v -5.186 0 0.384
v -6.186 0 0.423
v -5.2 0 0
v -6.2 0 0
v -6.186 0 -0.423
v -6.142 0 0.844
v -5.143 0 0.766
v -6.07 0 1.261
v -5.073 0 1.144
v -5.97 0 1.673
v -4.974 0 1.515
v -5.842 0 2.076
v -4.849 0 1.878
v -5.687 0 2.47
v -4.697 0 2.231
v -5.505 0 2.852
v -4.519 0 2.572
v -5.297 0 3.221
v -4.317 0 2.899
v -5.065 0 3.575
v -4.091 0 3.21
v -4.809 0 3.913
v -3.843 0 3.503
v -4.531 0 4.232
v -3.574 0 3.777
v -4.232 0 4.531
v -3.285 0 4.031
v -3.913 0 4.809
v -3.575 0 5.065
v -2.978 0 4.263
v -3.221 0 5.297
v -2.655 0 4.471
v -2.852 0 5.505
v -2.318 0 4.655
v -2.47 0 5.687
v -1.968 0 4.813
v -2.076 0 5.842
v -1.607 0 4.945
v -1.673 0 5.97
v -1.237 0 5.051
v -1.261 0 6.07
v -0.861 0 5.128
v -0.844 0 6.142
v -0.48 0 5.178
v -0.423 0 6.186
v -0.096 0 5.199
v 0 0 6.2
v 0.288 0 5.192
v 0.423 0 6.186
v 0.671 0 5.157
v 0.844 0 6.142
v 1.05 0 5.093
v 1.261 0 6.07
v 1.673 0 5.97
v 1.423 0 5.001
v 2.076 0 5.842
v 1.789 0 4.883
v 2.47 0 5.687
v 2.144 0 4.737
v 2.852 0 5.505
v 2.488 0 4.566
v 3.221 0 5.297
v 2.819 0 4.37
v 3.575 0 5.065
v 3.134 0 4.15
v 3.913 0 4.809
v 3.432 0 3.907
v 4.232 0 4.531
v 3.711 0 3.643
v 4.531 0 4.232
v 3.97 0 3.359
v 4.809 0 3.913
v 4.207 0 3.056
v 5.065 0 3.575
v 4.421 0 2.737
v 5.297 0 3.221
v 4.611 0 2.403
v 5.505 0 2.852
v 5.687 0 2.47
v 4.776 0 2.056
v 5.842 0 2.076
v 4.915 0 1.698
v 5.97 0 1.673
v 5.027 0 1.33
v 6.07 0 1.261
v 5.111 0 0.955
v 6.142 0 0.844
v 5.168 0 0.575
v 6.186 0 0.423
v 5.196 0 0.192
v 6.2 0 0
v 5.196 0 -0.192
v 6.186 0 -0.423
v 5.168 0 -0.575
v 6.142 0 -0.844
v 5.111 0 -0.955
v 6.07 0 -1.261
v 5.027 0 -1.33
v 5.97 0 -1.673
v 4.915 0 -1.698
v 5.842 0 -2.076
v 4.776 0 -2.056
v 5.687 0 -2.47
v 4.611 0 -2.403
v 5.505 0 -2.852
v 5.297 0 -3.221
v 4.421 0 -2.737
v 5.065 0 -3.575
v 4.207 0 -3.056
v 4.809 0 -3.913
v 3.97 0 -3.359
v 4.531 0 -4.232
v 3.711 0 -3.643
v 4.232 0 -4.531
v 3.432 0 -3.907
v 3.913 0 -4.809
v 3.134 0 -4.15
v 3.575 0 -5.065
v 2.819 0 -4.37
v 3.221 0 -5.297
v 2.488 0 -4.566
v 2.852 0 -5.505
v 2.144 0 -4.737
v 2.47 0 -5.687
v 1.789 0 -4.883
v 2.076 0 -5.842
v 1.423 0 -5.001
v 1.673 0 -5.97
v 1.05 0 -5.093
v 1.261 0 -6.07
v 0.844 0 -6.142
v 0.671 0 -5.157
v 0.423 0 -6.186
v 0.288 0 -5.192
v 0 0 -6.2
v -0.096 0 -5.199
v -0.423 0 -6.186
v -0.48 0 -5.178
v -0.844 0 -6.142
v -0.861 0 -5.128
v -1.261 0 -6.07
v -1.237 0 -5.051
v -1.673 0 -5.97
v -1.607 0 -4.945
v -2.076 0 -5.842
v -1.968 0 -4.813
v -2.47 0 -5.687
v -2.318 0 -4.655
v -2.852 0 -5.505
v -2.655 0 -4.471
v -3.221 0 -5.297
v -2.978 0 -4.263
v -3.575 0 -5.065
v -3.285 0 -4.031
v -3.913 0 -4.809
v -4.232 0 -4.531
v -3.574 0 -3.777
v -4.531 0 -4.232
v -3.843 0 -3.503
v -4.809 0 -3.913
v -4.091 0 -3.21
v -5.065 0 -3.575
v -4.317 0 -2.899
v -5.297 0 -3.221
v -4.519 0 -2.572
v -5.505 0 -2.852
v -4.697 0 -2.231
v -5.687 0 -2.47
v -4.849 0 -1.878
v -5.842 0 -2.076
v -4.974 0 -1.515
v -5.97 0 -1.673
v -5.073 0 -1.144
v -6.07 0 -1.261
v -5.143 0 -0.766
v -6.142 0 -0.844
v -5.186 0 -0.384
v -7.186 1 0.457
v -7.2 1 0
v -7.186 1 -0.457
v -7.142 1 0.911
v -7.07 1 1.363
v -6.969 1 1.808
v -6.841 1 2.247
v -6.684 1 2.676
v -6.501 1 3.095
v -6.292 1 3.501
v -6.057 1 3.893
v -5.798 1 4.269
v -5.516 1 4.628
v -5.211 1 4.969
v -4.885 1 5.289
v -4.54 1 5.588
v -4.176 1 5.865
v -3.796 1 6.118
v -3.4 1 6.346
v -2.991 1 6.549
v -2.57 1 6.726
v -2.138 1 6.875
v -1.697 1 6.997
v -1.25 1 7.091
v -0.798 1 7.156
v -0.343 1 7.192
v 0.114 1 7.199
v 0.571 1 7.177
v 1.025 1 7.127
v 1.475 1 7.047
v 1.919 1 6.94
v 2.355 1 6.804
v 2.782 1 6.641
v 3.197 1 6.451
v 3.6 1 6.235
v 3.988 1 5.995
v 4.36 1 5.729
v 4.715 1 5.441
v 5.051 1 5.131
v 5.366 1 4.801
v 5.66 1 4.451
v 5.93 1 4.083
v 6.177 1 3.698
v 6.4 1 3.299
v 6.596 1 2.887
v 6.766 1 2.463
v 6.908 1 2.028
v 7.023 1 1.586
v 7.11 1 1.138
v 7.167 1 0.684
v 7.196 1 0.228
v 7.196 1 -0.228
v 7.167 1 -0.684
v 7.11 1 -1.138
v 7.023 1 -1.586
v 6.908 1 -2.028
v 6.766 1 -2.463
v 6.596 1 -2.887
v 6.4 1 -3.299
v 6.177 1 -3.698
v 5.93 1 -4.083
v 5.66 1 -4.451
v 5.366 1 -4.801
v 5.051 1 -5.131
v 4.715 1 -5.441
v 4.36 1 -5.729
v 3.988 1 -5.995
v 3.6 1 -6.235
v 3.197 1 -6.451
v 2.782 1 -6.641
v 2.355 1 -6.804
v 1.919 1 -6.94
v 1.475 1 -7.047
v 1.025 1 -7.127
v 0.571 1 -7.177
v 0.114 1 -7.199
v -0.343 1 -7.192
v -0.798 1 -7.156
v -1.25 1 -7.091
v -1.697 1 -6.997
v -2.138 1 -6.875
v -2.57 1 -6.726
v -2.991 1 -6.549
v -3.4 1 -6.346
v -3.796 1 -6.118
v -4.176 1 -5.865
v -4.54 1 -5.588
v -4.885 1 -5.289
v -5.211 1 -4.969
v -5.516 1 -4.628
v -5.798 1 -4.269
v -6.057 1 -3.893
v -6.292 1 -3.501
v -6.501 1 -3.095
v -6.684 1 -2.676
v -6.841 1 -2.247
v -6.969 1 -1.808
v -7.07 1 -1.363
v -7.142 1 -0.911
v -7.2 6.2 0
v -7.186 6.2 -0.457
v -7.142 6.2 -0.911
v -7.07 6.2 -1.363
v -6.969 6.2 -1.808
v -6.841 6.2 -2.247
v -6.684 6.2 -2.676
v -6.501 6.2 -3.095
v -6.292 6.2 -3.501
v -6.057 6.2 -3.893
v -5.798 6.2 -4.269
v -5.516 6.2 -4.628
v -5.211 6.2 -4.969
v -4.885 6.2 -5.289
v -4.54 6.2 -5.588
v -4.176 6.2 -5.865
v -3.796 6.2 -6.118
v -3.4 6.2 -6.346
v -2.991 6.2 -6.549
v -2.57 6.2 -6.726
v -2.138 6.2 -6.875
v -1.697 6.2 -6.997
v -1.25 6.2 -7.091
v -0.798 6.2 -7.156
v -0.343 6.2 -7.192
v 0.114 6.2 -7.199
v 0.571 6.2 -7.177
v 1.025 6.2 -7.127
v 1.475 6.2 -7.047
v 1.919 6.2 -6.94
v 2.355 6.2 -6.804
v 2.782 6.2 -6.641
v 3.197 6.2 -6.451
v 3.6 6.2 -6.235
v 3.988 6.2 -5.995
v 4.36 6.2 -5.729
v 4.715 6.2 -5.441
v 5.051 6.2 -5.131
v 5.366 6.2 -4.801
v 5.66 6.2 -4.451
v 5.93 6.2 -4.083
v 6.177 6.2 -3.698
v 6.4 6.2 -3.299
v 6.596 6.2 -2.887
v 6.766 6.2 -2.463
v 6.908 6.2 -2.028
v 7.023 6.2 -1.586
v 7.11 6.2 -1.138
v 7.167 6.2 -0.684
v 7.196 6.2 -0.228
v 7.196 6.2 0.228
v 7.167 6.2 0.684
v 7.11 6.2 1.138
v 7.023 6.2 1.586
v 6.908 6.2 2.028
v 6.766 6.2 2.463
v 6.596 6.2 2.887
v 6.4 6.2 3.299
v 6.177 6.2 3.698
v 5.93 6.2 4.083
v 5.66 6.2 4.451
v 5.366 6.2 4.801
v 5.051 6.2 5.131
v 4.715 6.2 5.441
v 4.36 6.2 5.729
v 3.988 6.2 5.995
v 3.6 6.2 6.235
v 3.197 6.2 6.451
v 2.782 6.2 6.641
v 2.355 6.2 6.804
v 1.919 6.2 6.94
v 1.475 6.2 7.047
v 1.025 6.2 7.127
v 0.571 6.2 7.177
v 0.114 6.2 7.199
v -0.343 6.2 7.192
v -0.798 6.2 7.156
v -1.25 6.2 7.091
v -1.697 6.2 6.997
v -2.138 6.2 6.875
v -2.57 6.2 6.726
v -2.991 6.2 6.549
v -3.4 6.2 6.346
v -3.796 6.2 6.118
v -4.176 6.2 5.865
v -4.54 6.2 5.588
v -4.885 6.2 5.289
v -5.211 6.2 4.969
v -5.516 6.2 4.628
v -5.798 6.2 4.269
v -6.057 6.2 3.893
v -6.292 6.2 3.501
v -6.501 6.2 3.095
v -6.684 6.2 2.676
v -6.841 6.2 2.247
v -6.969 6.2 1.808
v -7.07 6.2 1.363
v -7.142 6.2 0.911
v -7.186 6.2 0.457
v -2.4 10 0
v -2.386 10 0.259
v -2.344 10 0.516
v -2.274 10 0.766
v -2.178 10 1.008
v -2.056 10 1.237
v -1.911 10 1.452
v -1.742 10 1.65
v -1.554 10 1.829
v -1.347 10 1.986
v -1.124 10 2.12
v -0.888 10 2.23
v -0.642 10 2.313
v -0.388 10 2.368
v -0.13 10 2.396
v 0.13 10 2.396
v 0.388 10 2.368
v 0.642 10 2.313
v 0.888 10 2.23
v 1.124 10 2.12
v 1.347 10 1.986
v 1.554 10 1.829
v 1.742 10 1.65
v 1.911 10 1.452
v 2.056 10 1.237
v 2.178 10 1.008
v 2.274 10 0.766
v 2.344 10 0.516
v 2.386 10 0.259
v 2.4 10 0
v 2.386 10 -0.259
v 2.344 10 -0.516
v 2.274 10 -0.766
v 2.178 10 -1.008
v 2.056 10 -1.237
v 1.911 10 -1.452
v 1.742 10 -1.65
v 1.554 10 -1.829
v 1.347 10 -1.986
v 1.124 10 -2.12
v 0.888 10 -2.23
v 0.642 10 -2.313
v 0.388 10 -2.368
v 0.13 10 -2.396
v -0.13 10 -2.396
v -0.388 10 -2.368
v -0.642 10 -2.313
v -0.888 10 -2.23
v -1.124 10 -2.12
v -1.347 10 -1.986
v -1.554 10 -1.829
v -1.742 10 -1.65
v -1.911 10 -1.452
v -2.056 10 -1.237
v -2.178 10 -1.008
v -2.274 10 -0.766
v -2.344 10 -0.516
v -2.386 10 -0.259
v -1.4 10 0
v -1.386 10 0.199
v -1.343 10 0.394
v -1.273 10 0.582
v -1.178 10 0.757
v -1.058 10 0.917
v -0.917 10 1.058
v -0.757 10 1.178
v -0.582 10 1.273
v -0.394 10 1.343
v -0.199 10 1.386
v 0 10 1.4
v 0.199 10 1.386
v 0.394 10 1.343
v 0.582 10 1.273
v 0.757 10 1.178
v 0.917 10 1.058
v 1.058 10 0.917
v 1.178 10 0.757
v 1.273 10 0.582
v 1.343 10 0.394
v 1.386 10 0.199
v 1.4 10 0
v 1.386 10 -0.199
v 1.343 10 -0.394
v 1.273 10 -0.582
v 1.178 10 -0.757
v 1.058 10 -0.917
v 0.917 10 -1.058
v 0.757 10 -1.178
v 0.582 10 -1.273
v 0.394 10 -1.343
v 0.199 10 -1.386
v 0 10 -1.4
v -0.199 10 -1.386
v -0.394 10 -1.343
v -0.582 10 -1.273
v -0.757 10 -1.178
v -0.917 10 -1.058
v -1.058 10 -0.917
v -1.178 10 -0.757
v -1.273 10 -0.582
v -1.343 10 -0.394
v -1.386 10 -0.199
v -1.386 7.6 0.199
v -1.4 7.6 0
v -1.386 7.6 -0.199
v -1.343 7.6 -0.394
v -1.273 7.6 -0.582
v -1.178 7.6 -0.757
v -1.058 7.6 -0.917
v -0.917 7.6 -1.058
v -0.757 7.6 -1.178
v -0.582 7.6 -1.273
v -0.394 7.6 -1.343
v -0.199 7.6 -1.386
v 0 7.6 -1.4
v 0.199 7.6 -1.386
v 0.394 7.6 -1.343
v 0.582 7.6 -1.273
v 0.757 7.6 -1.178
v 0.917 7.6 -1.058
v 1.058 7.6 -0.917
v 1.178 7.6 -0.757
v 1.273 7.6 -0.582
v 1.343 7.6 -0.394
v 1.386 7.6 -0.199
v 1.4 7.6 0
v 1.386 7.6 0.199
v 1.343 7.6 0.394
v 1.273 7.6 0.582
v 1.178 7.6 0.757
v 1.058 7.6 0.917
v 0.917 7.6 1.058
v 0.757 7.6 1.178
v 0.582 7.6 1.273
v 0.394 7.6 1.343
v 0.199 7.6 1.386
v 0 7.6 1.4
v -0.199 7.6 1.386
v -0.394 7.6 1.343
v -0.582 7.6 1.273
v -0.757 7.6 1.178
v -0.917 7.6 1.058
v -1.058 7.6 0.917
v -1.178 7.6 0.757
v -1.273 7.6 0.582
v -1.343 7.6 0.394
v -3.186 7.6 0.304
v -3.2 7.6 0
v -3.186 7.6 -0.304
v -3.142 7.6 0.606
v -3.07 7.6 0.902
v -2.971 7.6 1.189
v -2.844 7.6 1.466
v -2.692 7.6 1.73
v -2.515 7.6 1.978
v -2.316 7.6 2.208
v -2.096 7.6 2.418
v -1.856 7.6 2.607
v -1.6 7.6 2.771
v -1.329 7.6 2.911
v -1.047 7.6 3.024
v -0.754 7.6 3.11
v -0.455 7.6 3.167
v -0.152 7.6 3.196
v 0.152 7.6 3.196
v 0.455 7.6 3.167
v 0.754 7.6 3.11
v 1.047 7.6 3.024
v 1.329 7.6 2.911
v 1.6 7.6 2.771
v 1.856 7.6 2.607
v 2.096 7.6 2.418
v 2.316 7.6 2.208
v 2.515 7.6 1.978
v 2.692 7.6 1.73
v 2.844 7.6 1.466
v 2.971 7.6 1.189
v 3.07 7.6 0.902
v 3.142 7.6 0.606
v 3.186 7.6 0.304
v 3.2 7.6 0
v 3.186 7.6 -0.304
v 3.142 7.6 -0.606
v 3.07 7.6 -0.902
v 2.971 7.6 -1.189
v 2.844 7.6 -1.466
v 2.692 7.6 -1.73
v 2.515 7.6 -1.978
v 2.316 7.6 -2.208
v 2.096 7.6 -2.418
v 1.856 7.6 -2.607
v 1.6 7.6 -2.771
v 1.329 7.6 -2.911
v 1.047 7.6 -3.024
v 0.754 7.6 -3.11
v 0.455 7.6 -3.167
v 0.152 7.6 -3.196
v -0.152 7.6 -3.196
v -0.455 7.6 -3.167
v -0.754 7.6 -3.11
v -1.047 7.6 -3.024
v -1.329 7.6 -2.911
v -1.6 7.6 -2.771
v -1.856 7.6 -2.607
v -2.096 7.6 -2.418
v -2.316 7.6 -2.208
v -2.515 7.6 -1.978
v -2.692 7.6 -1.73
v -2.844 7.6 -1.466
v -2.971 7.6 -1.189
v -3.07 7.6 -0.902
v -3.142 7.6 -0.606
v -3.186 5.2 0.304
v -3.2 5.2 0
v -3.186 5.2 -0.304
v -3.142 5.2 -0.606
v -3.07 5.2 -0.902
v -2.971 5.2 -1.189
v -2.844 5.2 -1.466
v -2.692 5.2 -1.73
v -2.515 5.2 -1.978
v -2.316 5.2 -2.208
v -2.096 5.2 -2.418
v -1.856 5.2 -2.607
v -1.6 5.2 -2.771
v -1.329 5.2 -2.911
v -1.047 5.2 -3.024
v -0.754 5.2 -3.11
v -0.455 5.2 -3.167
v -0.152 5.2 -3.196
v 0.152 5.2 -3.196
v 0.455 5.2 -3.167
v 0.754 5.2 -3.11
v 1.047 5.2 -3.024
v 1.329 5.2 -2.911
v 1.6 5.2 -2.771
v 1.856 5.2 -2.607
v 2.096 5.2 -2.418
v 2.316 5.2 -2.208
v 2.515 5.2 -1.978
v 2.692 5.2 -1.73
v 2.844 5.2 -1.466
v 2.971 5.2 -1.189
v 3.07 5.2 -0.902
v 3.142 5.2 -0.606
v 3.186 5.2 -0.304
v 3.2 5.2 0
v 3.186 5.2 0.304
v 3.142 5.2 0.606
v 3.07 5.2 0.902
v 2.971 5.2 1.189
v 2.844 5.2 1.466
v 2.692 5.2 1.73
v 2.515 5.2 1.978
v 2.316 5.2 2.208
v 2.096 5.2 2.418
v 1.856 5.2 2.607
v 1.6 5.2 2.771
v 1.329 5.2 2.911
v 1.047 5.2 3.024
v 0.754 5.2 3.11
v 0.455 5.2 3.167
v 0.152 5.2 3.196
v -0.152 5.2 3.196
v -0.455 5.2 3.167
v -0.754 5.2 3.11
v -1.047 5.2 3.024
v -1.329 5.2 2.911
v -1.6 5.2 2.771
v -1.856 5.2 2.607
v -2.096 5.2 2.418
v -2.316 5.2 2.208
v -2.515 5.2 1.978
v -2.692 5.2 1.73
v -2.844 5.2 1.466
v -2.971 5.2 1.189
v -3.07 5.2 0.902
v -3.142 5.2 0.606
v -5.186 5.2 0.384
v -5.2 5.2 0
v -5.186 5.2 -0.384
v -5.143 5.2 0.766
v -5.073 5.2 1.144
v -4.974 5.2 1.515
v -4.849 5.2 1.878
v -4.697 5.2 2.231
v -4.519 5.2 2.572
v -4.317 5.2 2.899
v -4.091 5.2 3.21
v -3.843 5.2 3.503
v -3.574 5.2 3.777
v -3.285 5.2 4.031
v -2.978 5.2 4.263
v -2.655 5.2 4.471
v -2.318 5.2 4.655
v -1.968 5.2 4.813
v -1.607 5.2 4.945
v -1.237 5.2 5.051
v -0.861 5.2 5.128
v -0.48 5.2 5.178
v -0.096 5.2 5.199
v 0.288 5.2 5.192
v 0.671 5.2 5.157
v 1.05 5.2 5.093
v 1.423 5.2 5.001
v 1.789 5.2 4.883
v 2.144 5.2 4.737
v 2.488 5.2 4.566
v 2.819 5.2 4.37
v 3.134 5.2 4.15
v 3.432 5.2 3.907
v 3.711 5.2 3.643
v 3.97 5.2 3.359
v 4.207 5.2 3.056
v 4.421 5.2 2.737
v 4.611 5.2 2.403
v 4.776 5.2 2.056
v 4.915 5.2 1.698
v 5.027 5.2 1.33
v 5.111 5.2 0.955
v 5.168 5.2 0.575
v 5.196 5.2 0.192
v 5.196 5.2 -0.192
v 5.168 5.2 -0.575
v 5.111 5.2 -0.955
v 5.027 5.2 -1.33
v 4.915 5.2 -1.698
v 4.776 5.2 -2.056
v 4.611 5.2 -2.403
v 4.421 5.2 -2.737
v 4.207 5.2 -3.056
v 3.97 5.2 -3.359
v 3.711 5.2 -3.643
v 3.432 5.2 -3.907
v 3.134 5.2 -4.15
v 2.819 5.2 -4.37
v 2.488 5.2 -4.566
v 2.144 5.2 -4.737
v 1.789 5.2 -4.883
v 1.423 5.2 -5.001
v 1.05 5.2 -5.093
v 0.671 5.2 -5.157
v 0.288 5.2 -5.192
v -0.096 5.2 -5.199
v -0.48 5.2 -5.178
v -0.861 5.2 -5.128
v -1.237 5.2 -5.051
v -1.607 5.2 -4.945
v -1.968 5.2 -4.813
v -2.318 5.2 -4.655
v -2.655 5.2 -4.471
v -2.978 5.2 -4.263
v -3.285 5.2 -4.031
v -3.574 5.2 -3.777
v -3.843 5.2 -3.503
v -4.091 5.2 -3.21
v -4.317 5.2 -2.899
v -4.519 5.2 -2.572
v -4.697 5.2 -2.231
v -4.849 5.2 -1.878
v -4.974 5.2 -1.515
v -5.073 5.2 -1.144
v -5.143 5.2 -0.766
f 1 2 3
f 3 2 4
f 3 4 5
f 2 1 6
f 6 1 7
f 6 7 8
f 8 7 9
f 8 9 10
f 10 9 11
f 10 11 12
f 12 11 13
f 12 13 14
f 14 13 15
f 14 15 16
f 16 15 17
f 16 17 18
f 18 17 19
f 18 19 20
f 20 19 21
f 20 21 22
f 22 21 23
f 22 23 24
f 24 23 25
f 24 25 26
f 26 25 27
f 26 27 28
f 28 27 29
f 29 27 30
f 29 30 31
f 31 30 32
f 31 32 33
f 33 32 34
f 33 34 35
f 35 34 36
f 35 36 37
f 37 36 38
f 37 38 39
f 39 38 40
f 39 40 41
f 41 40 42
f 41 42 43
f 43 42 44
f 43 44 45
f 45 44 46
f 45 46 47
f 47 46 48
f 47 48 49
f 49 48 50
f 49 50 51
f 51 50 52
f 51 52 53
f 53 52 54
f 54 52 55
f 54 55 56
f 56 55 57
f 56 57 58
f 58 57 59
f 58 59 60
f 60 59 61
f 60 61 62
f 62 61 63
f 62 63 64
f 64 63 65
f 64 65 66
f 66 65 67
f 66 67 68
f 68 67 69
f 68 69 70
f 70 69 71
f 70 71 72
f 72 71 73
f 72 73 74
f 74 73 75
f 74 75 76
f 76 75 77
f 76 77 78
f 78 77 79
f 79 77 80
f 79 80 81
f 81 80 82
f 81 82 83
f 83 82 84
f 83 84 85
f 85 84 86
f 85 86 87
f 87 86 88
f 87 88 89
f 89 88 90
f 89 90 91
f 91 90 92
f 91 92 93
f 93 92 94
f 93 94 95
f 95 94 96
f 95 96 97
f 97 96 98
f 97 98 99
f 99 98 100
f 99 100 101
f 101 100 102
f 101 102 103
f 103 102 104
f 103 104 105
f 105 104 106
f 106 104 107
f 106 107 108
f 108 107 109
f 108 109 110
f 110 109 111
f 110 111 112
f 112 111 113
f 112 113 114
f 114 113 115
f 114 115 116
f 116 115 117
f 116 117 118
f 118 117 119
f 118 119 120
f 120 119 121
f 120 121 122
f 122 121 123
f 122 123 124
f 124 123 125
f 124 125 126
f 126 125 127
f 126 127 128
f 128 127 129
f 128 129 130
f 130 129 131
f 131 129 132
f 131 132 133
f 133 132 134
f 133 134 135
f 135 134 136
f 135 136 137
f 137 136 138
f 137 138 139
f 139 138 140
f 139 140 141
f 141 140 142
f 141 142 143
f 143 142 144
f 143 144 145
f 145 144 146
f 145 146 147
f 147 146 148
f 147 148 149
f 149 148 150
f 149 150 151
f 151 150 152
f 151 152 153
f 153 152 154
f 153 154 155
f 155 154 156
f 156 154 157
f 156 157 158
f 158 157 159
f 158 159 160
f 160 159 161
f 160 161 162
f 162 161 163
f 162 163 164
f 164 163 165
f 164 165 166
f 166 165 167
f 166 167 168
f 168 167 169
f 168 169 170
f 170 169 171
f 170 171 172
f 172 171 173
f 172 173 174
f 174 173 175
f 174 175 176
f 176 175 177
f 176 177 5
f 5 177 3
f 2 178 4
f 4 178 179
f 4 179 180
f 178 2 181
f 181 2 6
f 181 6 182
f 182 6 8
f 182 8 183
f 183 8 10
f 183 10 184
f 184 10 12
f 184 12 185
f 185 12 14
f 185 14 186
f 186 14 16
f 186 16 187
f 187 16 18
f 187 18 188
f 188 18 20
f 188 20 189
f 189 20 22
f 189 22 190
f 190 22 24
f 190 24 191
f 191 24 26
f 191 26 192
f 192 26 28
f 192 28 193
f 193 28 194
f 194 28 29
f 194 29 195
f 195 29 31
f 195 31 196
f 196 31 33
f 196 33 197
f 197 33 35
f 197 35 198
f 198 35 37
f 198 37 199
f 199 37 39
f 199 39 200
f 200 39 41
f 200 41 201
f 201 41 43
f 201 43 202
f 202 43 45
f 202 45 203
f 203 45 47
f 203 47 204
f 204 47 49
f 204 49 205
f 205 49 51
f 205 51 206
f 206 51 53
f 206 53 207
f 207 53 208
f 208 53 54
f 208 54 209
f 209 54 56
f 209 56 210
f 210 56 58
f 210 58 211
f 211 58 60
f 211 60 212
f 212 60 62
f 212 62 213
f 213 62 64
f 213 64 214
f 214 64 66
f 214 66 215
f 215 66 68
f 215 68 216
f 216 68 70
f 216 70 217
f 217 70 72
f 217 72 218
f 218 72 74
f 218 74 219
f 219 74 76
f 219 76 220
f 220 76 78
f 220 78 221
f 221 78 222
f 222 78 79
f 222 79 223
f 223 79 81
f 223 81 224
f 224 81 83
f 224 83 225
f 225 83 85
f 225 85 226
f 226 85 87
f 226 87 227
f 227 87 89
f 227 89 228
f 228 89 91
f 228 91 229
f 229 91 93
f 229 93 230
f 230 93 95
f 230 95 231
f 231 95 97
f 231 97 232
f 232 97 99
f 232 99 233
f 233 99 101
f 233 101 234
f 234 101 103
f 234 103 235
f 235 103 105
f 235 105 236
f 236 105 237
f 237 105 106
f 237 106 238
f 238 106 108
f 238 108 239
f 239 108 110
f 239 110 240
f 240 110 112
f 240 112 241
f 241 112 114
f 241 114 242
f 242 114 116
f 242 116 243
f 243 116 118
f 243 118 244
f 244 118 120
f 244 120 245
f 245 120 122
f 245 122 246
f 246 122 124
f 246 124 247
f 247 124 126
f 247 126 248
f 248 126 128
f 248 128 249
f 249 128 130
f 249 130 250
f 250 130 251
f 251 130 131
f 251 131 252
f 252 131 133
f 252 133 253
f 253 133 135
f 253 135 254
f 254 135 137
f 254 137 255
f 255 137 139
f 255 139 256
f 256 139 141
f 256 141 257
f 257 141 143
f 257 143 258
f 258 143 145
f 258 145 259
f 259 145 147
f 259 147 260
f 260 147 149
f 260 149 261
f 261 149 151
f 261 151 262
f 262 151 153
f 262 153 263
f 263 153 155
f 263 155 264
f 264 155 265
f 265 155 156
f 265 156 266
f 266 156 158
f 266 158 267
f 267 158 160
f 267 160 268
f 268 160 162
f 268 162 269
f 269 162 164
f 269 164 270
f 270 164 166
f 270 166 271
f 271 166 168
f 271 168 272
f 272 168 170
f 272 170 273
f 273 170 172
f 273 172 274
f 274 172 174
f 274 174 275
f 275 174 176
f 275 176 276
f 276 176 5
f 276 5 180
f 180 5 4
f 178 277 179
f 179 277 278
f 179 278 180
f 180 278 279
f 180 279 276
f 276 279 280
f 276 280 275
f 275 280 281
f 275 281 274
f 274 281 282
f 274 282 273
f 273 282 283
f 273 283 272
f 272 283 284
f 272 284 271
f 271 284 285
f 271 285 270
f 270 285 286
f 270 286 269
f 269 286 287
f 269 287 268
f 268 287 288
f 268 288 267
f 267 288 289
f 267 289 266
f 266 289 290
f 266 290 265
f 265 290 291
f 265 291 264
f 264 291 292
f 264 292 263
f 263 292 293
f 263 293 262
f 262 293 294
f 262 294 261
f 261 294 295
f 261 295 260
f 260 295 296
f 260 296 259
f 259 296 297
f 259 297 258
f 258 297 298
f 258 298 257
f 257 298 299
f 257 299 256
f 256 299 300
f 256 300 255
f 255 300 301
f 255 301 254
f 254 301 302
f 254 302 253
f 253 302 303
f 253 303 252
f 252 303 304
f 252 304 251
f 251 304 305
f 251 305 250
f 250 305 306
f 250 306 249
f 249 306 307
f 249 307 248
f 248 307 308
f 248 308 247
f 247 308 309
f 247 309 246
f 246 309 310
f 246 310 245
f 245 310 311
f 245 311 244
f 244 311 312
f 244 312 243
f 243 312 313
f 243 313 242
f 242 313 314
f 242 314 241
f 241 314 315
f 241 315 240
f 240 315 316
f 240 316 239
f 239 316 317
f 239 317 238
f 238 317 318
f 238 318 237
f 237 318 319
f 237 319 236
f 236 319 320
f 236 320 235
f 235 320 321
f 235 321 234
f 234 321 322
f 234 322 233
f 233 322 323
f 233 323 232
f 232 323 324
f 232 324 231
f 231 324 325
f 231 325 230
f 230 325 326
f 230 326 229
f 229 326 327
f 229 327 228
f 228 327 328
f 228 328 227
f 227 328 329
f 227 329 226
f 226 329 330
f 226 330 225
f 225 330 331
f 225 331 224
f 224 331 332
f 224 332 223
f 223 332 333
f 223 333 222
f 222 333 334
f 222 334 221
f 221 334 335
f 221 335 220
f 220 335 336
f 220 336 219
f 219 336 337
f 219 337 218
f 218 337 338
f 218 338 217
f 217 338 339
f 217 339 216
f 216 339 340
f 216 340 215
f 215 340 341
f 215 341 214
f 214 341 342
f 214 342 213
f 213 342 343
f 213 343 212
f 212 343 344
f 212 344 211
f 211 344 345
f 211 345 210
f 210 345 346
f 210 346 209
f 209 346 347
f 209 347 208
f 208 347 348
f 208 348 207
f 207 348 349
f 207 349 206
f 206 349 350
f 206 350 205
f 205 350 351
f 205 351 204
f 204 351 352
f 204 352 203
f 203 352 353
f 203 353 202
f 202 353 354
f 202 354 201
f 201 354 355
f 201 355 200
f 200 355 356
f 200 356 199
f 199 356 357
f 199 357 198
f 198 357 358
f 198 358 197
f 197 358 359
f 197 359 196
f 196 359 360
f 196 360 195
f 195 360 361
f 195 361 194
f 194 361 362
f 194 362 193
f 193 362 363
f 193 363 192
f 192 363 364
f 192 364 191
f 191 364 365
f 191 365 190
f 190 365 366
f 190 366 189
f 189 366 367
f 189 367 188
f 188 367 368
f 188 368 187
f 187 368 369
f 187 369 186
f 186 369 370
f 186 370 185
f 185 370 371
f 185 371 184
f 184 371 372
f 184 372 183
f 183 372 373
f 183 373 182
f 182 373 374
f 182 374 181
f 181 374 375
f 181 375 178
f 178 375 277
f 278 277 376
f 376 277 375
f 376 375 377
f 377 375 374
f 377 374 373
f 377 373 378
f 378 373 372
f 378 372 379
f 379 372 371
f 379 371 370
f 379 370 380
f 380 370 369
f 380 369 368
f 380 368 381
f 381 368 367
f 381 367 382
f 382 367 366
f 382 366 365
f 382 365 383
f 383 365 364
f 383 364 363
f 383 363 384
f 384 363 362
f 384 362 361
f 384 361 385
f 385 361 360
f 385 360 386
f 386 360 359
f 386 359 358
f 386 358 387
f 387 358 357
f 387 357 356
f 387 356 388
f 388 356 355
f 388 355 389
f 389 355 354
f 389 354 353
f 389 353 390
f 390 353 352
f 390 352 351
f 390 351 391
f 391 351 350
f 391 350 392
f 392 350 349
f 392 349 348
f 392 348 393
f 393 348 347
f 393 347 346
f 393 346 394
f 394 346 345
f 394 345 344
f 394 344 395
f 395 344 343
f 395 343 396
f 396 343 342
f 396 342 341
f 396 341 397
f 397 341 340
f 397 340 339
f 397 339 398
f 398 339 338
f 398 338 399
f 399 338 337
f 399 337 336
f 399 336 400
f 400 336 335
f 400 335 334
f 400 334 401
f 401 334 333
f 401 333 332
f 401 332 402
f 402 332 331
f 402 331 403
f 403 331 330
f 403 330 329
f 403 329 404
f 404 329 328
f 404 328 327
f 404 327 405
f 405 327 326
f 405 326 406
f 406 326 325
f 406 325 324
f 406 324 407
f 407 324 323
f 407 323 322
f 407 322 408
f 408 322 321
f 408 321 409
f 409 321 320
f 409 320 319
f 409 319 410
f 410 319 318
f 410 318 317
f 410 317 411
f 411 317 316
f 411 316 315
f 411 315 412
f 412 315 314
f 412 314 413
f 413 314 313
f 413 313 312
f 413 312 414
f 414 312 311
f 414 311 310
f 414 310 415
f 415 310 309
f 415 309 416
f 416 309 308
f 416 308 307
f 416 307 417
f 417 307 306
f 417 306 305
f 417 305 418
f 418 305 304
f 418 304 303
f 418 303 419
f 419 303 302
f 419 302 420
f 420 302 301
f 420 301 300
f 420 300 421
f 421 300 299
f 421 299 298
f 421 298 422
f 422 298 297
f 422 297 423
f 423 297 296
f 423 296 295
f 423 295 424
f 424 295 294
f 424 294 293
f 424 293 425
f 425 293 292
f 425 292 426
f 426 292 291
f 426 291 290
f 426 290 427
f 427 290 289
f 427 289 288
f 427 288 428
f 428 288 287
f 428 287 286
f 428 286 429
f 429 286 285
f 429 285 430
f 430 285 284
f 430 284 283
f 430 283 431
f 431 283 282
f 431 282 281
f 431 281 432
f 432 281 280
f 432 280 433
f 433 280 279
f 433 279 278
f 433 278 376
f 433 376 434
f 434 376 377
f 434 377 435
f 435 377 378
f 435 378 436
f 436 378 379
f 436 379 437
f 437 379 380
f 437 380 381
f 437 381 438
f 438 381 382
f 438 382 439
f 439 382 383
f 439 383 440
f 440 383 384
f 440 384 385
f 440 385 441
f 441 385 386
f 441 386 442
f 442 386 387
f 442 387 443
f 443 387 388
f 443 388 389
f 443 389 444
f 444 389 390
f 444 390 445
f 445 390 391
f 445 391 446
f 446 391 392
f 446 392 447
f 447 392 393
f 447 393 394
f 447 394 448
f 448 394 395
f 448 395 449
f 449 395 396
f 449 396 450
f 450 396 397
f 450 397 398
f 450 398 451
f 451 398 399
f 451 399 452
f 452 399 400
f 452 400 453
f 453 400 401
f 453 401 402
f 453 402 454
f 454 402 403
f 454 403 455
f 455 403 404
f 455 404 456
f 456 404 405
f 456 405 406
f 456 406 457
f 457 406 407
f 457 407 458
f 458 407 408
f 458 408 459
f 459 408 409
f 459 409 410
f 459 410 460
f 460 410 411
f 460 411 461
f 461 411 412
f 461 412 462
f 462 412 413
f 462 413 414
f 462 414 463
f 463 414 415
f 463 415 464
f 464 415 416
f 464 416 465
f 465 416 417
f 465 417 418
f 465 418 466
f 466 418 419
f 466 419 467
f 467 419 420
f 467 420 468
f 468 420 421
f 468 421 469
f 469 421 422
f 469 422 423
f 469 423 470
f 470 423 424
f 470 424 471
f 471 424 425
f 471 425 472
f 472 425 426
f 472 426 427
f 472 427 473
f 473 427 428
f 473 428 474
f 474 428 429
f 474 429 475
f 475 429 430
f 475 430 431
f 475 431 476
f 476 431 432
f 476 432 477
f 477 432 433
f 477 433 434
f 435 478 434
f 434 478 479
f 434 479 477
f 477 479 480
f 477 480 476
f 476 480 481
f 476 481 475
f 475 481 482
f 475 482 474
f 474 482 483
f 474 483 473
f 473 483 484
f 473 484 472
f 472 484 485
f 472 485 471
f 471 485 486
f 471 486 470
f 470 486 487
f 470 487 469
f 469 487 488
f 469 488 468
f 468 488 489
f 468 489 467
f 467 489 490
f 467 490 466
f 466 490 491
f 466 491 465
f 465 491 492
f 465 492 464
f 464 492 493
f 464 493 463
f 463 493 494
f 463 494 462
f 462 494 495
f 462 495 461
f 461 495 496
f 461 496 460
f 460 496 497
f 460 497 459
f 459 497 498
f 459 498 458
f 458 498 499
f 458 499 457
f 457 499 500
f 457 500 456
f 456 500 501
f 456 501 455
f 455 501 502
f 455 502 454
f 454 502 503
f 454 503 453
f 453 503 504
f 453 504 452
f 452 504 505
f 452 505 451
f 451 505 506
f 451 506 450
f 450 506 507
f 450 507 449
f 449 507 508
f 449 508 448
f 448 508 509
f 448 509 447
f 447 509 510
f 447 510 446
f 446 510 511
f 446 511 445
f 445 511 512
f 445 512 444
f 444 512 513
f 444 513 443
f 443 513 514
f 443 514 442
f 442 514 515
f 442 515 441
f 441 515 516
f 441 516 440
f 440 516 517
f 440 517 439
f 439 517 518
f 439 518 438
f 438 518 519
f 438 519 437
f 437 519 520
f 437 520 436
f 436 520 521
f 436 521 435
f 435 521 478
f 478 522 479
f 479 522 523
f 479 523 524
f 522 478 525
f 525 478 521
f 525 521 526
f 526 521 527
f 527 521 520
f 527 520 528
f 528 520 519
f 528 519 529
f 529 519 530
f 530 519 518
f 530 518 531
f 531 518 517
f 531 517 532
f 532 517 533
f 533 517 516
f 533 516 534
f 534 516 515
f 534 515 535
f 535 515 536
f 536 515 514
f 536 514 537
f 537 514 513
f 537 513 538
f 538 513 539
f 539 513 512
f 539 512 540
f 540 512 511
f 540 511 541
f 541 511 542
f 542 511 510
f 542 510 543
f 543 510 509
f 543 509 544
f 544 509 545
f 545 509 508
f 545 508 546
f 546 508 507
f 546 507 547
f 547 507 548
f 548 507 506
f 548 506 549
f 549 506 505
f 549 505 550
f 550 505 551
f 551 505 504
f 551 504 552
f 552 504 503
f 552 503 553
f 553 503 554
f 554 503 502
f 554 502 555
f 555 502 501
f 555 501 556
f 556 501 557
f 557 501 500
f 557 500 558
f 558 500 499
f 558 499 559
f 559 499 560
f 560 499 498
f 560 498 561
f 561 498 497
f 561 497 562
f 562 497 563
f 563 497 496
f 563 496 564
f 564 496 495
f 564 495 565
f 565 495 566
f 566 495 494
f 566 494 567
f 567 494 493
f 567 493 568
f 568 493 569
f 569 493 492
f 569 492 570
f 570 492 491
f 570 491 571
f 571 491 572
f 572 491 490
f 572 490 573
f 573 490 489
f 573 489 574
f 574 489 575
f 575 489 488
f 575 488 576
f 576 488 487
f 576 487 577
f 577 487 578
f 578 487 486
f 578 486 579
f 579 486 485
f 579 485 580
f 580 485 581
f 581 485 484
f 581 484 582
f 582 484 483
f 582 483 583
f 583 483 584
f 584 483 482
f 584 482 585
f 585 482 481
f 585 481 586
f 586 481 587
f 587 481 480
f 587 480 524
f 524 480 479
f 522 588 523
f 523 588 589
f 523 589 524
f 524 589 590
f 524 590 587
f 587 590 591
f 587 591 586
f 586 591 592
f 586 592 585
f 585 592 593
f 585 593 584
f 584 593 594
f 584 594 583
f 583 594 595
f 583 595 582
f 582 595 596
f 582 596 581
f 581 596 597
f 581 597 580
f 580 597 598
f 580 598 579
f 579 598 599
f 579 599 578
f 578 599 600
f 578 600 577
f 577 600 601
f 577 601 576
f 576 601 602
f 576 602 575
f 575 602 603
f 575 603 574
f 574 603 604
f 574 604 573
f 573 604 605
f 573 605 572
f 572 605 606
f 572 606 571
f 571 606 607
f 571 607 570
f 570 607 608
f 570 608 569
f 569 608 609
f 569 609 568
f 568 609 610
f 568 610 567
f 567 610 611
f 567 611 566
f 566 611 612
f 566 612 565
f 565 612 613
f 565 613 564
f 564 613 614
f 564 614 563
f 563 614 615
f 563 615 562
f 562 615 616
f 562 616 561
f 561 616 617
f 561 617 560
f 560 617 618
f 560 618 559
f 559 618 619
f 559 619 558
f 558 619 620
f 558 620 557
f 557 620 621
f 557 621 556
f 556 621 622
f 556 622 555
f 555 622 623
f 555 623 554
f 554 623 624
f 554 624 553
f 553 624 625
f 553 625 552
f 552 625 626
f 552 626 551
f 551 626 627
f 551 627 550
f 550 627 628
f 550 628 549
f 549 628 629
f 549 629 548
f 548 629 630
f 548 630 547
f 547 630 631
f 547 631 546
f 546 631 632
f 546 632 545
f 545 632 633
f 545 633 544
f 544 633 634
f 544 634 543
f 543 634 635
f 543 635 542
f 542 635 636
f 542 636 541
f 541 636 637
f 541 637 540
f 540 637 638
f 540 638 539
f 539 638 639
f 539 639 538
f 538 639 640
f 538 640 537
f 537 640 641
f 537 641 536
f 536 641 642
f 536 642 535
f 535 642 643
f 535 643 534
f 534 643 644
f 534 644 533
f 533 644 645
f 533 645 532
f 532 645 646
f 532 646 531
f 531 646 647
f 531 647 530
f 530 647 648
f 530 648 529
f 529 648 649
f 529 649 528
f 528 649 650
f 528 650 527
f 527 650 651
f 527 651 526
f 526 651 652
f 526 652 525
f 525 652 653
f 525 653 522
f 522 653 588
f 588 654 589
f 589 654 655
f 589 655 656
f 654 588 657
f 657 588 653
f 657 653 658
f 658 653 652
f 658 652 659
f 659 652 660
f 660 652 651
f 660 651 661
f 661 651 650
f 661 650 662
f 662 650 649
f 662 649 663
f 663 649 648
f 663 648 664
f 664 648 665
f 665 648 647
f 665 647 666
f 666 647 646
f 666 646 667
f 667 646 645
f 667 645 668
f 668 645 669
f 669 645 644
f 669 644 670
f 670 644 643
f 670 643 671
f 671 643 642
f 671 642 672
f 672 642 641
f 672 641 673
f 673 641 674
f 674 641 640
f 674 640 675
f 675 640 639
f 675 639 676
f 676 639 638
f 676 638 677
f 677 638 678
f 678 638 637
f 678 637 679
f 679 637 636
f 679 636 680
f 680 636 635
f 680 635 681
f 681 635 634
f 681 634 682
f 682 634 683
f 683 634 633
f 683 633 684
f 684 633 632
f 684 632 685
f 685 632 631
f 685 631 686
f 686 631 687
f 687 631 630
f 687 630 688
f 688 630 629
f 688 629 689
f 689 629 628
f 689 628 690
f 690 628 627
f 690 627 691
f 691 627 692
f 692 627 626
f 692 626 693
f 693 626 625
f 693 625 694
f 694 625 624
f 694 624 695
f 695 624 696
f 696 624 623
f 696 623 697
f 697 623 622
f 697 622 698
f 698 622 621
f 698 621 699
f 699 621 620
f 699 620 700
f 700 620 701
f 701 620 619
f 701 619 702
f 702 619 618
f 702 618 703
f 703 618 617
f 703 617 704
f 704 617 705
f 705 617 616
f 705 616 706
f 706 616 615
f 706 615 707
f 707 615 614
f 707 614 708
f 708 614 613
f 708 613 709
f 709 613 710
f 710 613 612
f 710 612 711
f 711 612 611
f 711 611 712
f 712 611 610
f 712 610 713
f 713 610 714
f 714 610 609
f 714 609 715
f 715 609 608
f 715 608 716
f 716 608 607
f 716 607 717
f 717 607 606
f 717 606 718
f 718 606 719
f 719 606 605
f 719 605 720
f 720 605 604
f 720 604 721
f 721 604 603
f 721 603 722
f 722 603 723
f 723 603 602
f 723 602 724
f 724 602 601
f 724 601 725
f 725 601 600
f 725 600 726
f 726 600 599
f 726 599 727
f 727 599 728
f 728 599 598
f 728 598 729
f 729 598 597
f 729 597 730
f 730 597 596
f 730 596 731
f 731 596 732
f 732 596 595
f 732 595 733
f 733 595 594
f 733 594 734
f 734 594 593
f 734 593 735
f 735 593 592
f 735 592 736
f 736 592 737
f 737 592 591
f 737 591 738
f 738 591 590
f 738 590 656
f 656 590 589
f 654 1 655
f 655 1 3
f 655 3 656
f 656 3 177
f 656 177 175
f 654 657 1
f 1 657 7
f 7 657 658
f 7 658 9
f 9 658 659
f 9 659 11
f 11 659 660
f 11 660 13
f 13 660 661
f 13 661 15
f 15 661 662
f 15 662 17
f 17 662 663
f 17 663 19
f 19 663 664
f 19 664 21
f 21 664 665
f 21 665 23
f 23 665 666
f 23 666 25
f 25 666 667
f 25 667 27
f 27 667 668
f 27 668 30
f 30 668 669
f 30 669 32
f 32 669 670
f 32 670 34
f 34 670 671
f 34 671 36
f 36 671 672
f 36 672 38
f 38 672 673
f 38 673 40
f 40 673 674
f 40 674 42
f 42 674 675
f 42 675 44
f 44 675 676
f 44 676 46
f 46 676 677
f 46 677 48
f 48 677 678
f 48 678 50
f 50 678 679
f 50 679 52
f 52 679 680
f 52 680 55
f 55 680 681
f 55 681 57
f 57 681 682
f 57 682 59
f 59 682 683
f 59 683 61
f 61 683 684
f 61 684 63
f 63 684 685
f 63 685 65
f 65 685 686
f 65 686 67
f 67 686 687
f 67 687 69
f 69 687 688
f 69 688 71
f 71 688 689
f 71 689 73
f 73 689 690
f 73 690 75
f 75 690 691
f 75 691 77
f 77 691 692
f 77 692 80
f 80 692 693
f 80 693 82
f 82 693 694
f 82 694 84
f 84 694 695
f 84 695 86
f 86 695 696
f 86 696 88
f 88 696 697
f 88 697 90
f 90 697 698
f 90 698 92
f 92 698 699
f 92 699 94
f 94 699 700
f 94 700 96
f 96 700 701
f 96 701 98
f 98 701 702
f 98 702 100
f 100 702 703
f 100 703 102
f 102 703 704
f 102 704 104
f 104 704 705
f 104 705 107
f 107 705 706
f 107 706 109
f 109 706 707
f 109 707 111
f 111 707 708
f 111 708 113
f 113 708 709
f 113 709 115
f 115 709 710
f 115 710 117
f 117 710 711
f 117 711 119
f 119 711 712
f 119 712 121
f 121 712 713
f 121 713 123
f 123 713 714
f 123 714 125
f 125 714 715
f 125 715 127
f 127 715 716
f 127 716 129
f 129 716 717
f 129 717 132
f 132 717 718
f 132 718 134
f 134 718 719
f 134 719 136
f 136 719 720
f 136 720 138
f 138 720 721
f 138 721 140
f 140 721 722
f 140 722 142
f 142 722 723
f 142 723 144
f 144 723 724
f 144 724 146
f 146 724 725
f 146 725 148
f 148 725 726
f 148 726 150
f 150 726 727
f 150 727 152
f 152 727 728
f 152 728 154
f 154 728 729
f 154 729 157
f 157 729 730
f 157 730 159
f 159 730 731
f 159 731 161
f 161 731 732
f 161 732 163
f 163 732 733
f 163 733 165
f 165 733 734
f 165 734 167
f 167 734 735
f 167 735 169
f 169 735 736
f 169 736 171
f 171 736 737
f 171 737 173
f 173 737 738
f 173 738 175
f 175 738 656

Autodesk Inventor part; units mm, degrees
sketch "Sketch1" plane through (0, 0, 0) normal (0, 0, 1) x (1, 0, 0)
  line L0 (-5.2, 0) -> (-5.2, 5.2)
  line L1 (0, 14.64) -> (0, -2.44) projected
  line L2 (-5.2, 0) -> (-6.2, 0)
  line L3 (-6.2, 0) -> (-7.2, 1)
  line L4 (-8.64, 0) -> (1.44, 0) projected
  line L5 (-7.2, 1) -> (-7.2, 6.2)
  line L6 (-5.2, 5.2) -> (-3.2, 5.2)
  line L7 (-3.2, 5.2) -> (-3.2, 7.6)
  line L8 (-3.2, 7.6) -> (-1.4, 7.6)
  line L9 (0, 7.2) -> (0, 12.2)
  line L10 (-1.4, 10) -> (-2.4, 10)
  line L11 (-2.4, 10) -> (-7.2, 6.2)
  line L12 (0, -2.44) -> (0, 14.64) projected
  line L13 (-1.4, 7.6) -> (-1.4, 10)
  point P0 (0, 0)
  dimension "d0" = 5.2
  dimension "d1" = 5.2
  dimension "d2" = 1
  dimension "d3" = 1
  dimension "d5" = 5.2
  dimension "d6" = 3.2
  dimension "d7" = 2.4
  dimension "d8" = 0
  dimension "d11" = 2.4
  dimension "d21" = 1.4
  dimension "d22" = 2
  dimension "d23" = 2.4
revolve "Revolution1" add sketch "Sketch1" angle 360 about axis through (0, -10, 0) along (0, 1, 0)
properties part number "magnet-holder" material "PET Plastic"
